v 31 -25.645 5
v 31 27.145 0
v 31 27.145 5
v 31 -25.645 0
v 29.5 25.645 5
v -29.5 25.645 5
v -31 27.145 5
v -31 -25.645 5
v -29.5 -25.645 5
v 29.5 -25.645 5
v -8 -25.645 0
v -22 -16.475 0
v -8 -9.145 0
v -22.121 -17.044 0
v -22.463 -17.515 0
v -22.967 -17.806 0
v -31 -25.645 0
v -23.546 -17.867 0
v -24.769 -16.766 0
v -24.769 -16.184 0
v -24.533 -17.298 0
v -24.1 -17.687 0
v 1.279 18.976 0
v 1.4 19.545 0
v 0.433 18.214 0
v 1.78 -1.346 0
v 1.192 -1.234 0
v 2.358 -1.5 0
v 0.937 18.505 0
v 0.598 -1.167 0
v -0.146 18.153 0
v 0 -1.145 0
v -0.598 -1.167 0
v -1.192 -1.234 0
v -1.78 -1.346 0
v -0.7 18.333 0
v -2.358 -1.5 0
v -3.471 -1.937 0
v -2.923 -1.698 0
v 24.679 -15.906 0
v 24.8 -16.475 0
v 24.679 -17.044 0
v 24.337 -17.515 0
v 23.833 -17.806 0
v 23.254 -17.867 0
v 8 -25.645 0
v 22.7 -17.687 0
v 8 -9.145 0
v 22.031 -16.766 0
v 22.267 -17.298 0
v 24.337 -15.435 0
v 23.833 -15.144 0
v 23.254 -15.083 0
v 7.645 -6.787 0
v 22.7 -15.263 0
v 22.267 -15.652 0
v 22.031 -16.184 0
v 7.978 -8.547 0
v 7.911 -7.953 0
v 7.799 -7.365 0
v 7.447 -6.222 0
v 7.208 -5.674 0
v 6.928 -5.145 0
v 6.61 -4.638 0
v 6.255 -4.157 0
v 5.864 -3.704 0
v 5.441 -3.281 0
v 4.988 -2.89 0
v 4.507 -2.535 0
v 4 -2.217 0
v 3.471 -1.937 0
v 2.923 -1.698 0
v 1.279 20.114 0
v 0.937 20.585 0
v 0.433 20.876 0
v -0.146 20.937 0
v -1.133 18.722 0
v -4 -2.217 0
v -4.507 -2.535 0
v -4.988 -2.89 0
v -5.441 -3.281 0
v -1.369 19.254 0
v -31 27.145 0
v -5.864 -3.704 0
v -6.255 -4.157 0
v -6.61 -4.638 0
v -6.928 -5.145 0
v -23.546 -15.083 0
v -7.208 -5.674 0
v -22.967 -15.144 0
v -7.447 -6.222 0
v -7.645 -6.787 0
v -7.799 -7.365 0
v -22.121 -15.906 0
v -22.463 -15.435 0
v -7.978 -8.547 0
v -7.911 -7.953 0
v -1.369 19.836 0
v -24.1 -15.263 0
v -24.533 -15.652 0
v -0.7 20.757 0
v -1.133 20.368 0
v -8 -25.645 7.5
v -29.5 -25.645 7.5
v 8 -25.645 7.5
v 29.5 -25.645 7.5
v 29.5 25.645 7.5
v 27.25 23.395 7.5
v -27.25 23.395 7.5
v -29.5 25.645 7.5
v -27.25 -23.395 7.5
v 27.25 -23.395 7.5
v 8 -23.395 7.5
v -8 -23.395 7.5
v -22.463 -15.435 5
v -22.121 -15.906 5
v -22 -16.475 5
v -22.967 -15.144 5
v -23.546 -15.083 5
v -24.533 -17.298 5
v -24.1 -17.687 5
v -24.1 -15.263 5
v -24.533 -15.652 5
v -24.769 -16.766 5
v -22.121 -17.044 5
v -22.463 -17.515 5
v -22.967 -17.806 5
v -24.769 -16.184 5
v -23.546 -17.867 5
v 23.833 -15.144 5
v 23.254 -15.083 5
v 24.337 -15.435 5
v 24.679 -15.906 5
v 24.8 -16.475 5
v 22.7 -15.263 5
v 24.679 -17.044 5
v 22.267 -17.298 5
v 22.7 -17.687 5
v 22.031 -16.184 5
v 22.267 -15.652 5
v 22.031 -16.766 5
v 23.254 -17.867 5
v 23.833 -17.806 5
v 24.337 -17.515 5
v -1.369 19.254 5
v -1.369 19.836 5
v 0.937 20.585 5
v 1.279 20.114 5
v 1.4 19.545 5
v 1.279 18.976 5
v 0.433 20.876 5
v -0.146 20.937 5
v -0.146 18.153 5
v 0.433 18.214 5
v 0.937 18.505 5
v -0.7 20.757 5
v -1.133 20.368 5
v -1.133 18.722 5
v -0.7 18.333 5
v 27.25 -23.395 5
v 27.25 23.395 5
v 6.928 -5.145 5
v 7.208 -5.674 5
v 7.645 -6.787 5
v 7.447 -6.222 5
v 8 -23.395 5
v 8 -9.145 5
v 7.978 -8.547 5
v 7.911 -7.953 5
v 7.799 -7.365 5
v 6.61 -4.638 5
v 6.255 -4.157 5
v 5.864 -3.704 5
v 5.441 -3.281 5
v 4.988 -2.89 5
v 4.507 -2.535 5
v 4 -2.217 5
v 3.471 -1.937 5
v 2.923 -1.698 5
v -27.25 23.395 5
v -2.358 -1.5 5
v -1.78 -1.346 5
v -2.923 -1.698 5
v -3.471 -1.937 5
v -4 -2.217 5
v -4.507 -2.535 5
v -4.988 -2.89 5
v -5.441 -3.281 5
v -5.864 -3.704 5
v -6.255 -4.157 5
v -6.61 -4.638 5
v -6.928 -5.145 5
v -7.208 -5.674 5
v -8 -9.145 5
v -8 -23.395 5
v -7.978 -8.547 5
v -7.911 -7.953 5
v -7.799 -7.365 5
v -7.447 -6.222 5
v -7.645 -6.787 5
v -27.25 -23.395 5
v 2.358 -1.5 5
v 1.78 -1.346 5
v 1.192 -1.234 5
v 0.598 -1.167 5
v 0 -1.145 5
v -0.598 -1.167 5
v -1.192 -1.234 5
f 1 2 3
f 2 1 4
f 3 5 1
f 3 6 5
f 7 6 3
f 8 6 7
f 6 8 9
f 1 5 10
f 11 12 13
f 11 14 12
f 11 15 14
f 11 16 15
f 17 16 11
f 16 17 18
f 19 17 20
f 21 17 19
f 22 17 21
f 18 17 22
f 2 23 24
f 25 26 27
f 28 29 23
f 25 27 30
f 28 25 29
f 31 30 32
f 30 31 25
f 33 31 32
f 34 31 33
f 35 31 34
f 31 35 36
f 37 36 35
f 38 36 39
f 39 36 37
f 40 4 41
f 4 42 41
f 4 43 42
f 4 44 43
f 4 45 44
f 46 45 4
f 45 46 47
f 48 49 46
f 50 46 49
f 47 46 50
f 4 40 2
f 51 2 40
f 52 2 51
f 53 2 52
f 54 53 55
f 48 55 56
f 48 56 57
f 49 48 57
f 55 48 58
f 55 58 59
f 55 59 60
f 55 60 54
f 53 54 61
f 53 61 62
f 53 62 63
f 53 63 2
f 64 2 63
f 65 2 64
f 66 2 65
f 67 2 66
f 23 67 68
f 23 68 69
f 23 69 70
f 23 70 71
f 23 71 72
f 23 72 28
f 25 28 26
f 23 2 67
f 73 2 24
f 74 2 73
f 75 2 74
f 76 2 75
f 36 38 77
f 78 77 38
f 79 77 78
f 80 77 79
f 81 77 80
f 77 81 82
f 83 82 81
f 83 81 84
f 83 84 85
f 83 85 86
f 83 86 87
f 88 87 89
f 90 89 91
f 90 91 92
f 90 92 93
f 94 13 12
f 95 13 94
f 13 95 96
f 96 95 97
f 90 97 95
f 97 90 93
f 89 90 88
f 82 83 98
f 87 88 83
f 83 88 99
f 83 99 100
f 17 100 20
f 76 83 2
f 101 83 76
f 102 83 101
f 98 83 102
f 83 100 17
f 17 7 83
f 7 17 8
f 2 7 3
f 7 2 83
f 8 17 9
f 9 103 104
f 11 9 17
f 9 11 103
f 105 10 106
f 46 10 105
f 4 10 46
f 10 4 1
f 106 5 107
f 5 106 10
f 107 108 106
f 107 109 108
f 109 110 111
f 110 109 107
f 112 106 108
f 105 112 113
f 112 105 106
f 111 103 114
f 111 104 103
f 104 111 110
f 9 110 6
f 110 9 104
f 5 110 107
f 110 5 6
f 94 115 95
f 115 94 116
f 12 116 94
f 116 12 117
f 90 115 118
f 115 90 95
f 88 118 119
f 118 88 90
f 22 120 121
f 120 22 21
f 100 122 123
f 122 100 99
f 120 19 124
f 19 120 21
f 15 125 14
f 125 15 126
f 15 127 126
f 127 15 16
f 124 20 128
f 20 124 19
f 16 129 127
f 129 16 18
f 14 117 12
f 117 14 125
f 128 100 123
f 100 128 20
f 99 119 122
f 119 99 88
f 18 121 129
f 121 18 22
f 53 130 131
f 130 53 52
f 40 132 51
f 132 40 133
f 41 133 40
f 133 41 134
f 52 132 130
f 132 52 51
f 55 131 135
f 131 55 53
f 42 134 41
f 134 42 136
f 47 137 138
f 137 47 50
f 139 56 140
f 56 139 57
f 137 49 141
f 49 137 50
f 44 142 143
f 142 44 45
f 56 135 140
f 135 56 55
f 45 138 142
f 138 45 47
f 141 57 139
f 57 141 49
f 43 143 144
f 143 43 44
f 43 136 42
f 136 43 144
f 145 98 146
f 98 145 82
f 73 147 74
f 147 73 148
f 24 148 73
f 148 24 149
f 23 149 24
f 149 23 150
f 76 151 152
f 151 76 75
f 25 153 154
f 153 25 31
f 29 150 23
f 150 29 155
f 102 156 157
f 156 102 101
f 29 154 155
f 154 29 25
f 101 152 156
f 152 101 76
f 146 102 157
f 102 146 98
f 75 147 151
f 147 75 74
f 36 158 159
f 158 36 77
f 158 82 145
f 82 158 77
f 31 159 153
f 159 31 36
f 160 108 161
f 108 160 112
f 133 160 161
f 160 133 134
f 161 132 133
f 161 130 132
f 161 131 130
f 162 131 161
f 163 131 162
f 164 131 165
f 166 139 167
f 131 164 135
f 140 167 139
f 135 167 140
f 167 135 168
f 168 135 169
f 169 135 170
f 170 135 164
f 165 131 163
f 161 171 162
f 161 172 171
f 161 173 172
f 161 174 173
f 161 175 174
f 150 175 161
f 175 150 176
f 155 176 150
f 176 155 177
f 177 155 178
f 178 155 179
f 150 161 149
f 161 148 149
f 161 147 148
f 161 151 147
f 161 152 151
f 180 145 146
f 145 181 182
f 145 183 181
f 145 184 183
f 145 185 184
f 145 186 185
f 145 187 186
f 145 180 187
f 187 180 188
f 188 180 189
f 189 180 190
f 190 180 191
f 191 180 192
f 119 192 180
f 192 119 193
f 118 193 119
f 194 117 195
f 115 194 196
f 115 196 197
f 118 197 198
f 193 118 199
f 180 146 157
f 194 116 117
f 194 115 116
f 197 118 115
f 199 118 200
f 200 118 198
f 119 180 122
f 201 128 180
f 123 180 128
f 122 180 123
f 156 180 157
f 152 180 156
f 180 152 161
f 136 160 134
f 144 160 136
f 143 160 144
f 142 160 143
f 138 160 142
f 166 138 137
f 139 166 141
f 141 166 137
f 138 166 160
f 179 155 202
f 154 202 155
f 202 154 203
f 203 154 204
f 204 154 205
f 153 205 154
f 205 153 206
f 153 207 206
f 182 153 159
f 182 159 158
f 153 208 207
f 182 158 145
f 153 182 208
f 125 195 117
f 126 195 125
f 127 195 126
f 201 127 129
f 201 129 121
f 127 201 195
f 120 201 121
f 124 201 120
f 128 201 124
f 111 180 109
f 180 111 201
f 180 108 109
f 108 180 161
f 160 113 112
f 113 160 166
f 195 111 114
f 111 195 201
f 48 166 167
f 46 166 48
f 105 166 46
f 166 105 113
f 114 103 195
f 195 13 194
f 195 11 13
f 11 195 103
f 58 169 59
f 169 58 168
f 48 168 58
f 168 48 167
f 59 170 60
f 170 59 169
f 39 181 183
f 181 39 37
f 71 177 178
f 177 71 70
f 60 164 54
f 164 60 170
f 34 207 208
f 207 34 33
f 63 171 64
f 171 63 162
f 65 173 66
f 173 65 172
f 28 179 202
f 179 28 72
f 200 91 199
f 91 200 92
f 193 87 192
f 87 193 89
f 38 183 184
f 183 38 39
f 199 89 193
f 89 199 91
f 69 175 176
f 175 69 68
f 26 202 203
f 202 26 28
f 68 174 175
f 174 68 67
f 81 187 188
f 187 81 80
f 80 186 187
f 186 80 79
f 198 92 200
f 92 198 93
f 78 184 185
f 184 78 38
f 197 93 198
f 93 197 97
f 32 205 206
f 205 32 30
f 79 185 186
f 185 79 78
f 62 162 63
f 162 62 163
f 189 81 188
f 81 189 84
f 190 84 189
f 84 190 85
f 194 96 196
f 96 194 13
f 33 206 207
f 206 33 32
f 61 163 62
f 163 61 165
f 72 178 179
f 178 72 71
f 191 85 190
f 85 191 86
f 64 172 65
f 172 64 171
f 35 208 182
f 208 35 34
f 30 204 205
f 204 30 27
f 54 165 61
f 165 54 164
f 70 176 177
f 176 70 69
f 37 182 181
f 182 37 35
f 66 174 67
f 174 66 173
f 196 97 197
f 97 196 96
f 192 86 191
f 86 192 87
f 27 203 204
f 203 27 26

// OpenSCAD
// file: params.scad
// ============================================================
//  Scanner 3D LiDAR — paramètres partagés
//  Toutes les cotes sont en millimètres.
//
//  Repère d'assemblage : z = 0 sur la face SUPÉRIEURE du plateau
//  de base. L'axe de rotation (lacet psi) est l'axe Z.
// ============================================================

// Finesse de facettisation adaptative : les petits perçages restent
// légers, les grands diamètres restent lisses.
$fa = 4;
$fs = 0.6;

// ------------------------------------------------------------
//  Ajustements d'impression
//  À recalibrer sur votre imprimante avec mechanical/openscad/
//  test_fits.scad avant d'imprimer les pièces définitives.
// ------------------------------------------------------------
fit_press = 0.15;   // serré   : roulement — encoche 5 du coupon (delta +0,15 → Ø22,15)
fit_slide = 0.45;   // glissant: tige — encoche 4 (delta +0,10 → Ø8,45)
fit_free = 0.50;    // libre   : dégagements

// ------------------------------------------------------------
//  Roulement 608ZZ
// ------------------------------------------------------------
bearing_od = 22;
bearing_id = 8;
bearing_w = 7;

// ------------------------------------------------------------
//  Arbre vertical (tige acier rectifiée Ø8 h6)
// ------------------------------------------------------------
shaft_d = 8;
// Longueur utile : de l'accouplement (z 65) au sommet du moyeu (z 180).
// Ne PAS dépasser 180 : au-delà, la tige pénètre dans le corps du LD19.
shaft_len = 115;

// ------------------------------------------------------------
//  Moteur NEMA 17 (17HS4401)
// ------------------------------------------------------------
nema_body = 42.3;
nema_len = 40;       // longueur du corps (marge : 38 mm réels)
nema_pitch = 31;     // entraxe carré des 4 vis M3
nema_boss_d = 22;    // bossage de centrage
nema_boss_h = 2;
nema_shaft_d = 5;
nema_shaft_l = 24;

// ------------------------------------------------------------
//  Accouplement flexible 5 mm -> 8 mm (type mâchoires / araignée)
// ------------------------------------------------------------
coupler_d = 19;
coupler_l = 25;

// ------------------------------------------------------------
//  LiDAR — STL-19P / FHL-LD19P (LDROBOT, 3 oreilles de fixation)
//  Câble vers le bas au montage sur le berceau.
//  ATTENTION : lidar_optical_offset à VÉRIFIER au pied à coulisse.
//  Voir docs/calibration.md § « Mesure du décalage optique ».
//  Perçage : datasheet STL-19P § 5.1, vue de la face de fixation.
//  Repère : bord des 2 oreilles + connecteur ZH1.5T = bas du berceau.
//  Corps 38,59 × 38,59 ; envergure 54 ; longueur hors-tout 46,29.
//  3 × Φ2,5 通孔, lamage capteur Φ4,46 × 2 (pas sur le berceau).
// ------------------------------------------------------------
lidar_w = 54;                  // envergure Y (2 oreilles)
lidar_h = 46.29;               // longueur Z hors-tout (oreille simple comprise)
lidar_body = 38.59;            // côté du corps, hors oreille simple
lidar_thk = 34.8;              // profondeur X
lidar_optical_offset = 22;     // plan de balayage / face de fixation  <-- À VÉRIFIER
lidar_screw_d = 2.8;           // M2,5 traversant, jeu impression
lidar_hole_y = 23.4;           // 46,8 / 2
// 31,92 = oreilles lat. → bord opposé du corps ⇒ 38,59 − 31,92 depuis le câble
lidar_side_hole_z = 6.67;
lidar_top_hole_z = 42.69;      // oreille simple, depuis le même bord câble
lidar_cable_w = 16;            // passage nappe : fente dans platine + rebord
lidar_cable_h = 14;            // hauteur depuis le bas du footprint

// ------------------------------------------------------------
//  Visserie M3
// ------------------------------------------------------------
m3_clear = 3.4;
m3_head_d = 6.2;
m3_head_h = 3.2;
m3_nut_af = 5.6;   // entreplat
m3_nut_h = 2.7;

// ------------------------------------------------------------
//  Insert laiton 1/4"-20 UNC (fixation trépied)
// ------------------------------------------------------------
insert_qtr_d = 8.4;
insert_qtr_l = 13;

// ------------------------------------------------------------
//  Plateau de base
// ------------------------------------------------------------
plate_d = 126;
plate_t = 8;
tripod_boss_d = 30;
tripod_boss_h = 16;
tower_bolt_circle = 106;   // hors du cône : têtes de vis accessibles

// ------------------------------------------------------------
//  Colonne à roulements  (z local = 0 sur la face inférieure,
//  qui repose sur la face supérieure du plateau)
// ------------------------------------------------------------
tower_flange_d = 118;
tower_flange_t = 6;
tower_base_d = 96;
tower_top_d = 34;
tower_cone_top_z = 100;   // fin du cône
tower_total_h = 133;      // hauteur totale
tower_cavity_d = 62;      // dégagement moteur (diagonale NEMA 17 = 59.8 mm)
tower_cavity_top_z = 42;
tower_throat_d = 26;      // dégagement accouplement (Ø19)
tower_throat_z = 78;

bearing_lo_z = 82;        // face inférieure du roulement bas
bearing_hi_z = 122;       // face inférieure du roulement haut
bearing_relief_d = 23.5;

// ------------------------------------------------------------
//  Berceau LiDAR  (cotes en repère d'assemblage global)
// ------------------------------------------------------------
hub_d = 18;
hub_z0 = 140;
hub_z1 = 180;
hub_top_d = 12;          // rétreint pour limiter l'occultation au nadir
web_z0 = 176;
web_z1 = 188;
web_hw = 7;              // demi-largeur en Y
plate_x = -22;           // face de fixation du LiDAR (= -lidar_optical_offset)
cradle_plate_t = 5;
optical_z = 205;         // hauteur du centre optique  => centre du nuage

// ------------------------------------------------------------
//  Boîtier électronique
// ------------------------------------------------------------
box_ix = 106;
box_iy = 76;
box_iz = 34;
box_wall = 2.5;
// main file
// ============================================================
//  Coupon d'essai — empreinte STL-19P
//
//  Platine seule : rebord, 3 × M2,5, fente nappe. Sans moyeu ni voile.
//  Même cotes que lidar_cradle (params.scad). ~20 min, pas de support.
//
//  Impression : telle quelle, rebord vers le haut.
//  Câble / 2 oreilles vers le bord MARQUÉ (fente ouverte).
// ============================================================

include <params.scad>

rim_t = 2.5;
rim_h = 2.5;
margin = 4;

plate_w = lidar_w + 2 * margin;                 // 62
plate_l = lidar_h + rim_t + margin;             // ~52,8
plate_t = 5;  // = cradle_plate_t

// Origine : centre de l'empreinte, bord câble en Y négatif
module test_lidar_fit() {
    difference() {
        union() {
            translate([-plate_w / 2, -lidar_h / 2 - rim_t, 0])
                cube([plate_w, plate_l, plate_t]);

            difference() {
                translate([-(lidar_w / 2 + rim_t), -(lidar_h / 2 + rim_t), plate_t])
                    cube([lidar_w + 2 * rim_t, lidar_h + 2 * rim_t, rim_h]);
                translate([-(lidar_w / 2 + 0.25), -(lidar_h / 2 + 0.25), plate_t - 0.1])
                    cube([lidar_w + 0.5, lidar_h + 0.5, rim_h + 0.3]);
            }
        }

        // 2 oreilles côté câble (Y = −lidar_h/2)
        y_side = -lidar_h / 2 + lidar_side_hole_z;
        y_top  = -lidar_h / 2 + lidar_top_hole_z;
        for (p = [[-lidar_hole_y, y_side], [lidar_hole_y, y_side], [0, y_top]])
            translate([p[0], p[1], -0.1])
                cylinder(d = lidar_screw_d, h = plate_t + rim_h + 0.4);

        // Fente nappe : ouverte sur le bord câble
        y0 = -lidar_h / 2 - rim_t - 0.1;
        y1 = -lidar_h / 2 + lidar_cable_h;
        translate([-lidar_cable_w / 2, y0, -0.1])
            cube([lidar_cable_w, y1 - y0, plate_t + rim_h + 0.4]);
        translate([0, y1, -0.1])
            cylinder(d = lidar_cable_w, h = plate_t + rim_h + 0.4);
    }
}

test_lidar_fit();
